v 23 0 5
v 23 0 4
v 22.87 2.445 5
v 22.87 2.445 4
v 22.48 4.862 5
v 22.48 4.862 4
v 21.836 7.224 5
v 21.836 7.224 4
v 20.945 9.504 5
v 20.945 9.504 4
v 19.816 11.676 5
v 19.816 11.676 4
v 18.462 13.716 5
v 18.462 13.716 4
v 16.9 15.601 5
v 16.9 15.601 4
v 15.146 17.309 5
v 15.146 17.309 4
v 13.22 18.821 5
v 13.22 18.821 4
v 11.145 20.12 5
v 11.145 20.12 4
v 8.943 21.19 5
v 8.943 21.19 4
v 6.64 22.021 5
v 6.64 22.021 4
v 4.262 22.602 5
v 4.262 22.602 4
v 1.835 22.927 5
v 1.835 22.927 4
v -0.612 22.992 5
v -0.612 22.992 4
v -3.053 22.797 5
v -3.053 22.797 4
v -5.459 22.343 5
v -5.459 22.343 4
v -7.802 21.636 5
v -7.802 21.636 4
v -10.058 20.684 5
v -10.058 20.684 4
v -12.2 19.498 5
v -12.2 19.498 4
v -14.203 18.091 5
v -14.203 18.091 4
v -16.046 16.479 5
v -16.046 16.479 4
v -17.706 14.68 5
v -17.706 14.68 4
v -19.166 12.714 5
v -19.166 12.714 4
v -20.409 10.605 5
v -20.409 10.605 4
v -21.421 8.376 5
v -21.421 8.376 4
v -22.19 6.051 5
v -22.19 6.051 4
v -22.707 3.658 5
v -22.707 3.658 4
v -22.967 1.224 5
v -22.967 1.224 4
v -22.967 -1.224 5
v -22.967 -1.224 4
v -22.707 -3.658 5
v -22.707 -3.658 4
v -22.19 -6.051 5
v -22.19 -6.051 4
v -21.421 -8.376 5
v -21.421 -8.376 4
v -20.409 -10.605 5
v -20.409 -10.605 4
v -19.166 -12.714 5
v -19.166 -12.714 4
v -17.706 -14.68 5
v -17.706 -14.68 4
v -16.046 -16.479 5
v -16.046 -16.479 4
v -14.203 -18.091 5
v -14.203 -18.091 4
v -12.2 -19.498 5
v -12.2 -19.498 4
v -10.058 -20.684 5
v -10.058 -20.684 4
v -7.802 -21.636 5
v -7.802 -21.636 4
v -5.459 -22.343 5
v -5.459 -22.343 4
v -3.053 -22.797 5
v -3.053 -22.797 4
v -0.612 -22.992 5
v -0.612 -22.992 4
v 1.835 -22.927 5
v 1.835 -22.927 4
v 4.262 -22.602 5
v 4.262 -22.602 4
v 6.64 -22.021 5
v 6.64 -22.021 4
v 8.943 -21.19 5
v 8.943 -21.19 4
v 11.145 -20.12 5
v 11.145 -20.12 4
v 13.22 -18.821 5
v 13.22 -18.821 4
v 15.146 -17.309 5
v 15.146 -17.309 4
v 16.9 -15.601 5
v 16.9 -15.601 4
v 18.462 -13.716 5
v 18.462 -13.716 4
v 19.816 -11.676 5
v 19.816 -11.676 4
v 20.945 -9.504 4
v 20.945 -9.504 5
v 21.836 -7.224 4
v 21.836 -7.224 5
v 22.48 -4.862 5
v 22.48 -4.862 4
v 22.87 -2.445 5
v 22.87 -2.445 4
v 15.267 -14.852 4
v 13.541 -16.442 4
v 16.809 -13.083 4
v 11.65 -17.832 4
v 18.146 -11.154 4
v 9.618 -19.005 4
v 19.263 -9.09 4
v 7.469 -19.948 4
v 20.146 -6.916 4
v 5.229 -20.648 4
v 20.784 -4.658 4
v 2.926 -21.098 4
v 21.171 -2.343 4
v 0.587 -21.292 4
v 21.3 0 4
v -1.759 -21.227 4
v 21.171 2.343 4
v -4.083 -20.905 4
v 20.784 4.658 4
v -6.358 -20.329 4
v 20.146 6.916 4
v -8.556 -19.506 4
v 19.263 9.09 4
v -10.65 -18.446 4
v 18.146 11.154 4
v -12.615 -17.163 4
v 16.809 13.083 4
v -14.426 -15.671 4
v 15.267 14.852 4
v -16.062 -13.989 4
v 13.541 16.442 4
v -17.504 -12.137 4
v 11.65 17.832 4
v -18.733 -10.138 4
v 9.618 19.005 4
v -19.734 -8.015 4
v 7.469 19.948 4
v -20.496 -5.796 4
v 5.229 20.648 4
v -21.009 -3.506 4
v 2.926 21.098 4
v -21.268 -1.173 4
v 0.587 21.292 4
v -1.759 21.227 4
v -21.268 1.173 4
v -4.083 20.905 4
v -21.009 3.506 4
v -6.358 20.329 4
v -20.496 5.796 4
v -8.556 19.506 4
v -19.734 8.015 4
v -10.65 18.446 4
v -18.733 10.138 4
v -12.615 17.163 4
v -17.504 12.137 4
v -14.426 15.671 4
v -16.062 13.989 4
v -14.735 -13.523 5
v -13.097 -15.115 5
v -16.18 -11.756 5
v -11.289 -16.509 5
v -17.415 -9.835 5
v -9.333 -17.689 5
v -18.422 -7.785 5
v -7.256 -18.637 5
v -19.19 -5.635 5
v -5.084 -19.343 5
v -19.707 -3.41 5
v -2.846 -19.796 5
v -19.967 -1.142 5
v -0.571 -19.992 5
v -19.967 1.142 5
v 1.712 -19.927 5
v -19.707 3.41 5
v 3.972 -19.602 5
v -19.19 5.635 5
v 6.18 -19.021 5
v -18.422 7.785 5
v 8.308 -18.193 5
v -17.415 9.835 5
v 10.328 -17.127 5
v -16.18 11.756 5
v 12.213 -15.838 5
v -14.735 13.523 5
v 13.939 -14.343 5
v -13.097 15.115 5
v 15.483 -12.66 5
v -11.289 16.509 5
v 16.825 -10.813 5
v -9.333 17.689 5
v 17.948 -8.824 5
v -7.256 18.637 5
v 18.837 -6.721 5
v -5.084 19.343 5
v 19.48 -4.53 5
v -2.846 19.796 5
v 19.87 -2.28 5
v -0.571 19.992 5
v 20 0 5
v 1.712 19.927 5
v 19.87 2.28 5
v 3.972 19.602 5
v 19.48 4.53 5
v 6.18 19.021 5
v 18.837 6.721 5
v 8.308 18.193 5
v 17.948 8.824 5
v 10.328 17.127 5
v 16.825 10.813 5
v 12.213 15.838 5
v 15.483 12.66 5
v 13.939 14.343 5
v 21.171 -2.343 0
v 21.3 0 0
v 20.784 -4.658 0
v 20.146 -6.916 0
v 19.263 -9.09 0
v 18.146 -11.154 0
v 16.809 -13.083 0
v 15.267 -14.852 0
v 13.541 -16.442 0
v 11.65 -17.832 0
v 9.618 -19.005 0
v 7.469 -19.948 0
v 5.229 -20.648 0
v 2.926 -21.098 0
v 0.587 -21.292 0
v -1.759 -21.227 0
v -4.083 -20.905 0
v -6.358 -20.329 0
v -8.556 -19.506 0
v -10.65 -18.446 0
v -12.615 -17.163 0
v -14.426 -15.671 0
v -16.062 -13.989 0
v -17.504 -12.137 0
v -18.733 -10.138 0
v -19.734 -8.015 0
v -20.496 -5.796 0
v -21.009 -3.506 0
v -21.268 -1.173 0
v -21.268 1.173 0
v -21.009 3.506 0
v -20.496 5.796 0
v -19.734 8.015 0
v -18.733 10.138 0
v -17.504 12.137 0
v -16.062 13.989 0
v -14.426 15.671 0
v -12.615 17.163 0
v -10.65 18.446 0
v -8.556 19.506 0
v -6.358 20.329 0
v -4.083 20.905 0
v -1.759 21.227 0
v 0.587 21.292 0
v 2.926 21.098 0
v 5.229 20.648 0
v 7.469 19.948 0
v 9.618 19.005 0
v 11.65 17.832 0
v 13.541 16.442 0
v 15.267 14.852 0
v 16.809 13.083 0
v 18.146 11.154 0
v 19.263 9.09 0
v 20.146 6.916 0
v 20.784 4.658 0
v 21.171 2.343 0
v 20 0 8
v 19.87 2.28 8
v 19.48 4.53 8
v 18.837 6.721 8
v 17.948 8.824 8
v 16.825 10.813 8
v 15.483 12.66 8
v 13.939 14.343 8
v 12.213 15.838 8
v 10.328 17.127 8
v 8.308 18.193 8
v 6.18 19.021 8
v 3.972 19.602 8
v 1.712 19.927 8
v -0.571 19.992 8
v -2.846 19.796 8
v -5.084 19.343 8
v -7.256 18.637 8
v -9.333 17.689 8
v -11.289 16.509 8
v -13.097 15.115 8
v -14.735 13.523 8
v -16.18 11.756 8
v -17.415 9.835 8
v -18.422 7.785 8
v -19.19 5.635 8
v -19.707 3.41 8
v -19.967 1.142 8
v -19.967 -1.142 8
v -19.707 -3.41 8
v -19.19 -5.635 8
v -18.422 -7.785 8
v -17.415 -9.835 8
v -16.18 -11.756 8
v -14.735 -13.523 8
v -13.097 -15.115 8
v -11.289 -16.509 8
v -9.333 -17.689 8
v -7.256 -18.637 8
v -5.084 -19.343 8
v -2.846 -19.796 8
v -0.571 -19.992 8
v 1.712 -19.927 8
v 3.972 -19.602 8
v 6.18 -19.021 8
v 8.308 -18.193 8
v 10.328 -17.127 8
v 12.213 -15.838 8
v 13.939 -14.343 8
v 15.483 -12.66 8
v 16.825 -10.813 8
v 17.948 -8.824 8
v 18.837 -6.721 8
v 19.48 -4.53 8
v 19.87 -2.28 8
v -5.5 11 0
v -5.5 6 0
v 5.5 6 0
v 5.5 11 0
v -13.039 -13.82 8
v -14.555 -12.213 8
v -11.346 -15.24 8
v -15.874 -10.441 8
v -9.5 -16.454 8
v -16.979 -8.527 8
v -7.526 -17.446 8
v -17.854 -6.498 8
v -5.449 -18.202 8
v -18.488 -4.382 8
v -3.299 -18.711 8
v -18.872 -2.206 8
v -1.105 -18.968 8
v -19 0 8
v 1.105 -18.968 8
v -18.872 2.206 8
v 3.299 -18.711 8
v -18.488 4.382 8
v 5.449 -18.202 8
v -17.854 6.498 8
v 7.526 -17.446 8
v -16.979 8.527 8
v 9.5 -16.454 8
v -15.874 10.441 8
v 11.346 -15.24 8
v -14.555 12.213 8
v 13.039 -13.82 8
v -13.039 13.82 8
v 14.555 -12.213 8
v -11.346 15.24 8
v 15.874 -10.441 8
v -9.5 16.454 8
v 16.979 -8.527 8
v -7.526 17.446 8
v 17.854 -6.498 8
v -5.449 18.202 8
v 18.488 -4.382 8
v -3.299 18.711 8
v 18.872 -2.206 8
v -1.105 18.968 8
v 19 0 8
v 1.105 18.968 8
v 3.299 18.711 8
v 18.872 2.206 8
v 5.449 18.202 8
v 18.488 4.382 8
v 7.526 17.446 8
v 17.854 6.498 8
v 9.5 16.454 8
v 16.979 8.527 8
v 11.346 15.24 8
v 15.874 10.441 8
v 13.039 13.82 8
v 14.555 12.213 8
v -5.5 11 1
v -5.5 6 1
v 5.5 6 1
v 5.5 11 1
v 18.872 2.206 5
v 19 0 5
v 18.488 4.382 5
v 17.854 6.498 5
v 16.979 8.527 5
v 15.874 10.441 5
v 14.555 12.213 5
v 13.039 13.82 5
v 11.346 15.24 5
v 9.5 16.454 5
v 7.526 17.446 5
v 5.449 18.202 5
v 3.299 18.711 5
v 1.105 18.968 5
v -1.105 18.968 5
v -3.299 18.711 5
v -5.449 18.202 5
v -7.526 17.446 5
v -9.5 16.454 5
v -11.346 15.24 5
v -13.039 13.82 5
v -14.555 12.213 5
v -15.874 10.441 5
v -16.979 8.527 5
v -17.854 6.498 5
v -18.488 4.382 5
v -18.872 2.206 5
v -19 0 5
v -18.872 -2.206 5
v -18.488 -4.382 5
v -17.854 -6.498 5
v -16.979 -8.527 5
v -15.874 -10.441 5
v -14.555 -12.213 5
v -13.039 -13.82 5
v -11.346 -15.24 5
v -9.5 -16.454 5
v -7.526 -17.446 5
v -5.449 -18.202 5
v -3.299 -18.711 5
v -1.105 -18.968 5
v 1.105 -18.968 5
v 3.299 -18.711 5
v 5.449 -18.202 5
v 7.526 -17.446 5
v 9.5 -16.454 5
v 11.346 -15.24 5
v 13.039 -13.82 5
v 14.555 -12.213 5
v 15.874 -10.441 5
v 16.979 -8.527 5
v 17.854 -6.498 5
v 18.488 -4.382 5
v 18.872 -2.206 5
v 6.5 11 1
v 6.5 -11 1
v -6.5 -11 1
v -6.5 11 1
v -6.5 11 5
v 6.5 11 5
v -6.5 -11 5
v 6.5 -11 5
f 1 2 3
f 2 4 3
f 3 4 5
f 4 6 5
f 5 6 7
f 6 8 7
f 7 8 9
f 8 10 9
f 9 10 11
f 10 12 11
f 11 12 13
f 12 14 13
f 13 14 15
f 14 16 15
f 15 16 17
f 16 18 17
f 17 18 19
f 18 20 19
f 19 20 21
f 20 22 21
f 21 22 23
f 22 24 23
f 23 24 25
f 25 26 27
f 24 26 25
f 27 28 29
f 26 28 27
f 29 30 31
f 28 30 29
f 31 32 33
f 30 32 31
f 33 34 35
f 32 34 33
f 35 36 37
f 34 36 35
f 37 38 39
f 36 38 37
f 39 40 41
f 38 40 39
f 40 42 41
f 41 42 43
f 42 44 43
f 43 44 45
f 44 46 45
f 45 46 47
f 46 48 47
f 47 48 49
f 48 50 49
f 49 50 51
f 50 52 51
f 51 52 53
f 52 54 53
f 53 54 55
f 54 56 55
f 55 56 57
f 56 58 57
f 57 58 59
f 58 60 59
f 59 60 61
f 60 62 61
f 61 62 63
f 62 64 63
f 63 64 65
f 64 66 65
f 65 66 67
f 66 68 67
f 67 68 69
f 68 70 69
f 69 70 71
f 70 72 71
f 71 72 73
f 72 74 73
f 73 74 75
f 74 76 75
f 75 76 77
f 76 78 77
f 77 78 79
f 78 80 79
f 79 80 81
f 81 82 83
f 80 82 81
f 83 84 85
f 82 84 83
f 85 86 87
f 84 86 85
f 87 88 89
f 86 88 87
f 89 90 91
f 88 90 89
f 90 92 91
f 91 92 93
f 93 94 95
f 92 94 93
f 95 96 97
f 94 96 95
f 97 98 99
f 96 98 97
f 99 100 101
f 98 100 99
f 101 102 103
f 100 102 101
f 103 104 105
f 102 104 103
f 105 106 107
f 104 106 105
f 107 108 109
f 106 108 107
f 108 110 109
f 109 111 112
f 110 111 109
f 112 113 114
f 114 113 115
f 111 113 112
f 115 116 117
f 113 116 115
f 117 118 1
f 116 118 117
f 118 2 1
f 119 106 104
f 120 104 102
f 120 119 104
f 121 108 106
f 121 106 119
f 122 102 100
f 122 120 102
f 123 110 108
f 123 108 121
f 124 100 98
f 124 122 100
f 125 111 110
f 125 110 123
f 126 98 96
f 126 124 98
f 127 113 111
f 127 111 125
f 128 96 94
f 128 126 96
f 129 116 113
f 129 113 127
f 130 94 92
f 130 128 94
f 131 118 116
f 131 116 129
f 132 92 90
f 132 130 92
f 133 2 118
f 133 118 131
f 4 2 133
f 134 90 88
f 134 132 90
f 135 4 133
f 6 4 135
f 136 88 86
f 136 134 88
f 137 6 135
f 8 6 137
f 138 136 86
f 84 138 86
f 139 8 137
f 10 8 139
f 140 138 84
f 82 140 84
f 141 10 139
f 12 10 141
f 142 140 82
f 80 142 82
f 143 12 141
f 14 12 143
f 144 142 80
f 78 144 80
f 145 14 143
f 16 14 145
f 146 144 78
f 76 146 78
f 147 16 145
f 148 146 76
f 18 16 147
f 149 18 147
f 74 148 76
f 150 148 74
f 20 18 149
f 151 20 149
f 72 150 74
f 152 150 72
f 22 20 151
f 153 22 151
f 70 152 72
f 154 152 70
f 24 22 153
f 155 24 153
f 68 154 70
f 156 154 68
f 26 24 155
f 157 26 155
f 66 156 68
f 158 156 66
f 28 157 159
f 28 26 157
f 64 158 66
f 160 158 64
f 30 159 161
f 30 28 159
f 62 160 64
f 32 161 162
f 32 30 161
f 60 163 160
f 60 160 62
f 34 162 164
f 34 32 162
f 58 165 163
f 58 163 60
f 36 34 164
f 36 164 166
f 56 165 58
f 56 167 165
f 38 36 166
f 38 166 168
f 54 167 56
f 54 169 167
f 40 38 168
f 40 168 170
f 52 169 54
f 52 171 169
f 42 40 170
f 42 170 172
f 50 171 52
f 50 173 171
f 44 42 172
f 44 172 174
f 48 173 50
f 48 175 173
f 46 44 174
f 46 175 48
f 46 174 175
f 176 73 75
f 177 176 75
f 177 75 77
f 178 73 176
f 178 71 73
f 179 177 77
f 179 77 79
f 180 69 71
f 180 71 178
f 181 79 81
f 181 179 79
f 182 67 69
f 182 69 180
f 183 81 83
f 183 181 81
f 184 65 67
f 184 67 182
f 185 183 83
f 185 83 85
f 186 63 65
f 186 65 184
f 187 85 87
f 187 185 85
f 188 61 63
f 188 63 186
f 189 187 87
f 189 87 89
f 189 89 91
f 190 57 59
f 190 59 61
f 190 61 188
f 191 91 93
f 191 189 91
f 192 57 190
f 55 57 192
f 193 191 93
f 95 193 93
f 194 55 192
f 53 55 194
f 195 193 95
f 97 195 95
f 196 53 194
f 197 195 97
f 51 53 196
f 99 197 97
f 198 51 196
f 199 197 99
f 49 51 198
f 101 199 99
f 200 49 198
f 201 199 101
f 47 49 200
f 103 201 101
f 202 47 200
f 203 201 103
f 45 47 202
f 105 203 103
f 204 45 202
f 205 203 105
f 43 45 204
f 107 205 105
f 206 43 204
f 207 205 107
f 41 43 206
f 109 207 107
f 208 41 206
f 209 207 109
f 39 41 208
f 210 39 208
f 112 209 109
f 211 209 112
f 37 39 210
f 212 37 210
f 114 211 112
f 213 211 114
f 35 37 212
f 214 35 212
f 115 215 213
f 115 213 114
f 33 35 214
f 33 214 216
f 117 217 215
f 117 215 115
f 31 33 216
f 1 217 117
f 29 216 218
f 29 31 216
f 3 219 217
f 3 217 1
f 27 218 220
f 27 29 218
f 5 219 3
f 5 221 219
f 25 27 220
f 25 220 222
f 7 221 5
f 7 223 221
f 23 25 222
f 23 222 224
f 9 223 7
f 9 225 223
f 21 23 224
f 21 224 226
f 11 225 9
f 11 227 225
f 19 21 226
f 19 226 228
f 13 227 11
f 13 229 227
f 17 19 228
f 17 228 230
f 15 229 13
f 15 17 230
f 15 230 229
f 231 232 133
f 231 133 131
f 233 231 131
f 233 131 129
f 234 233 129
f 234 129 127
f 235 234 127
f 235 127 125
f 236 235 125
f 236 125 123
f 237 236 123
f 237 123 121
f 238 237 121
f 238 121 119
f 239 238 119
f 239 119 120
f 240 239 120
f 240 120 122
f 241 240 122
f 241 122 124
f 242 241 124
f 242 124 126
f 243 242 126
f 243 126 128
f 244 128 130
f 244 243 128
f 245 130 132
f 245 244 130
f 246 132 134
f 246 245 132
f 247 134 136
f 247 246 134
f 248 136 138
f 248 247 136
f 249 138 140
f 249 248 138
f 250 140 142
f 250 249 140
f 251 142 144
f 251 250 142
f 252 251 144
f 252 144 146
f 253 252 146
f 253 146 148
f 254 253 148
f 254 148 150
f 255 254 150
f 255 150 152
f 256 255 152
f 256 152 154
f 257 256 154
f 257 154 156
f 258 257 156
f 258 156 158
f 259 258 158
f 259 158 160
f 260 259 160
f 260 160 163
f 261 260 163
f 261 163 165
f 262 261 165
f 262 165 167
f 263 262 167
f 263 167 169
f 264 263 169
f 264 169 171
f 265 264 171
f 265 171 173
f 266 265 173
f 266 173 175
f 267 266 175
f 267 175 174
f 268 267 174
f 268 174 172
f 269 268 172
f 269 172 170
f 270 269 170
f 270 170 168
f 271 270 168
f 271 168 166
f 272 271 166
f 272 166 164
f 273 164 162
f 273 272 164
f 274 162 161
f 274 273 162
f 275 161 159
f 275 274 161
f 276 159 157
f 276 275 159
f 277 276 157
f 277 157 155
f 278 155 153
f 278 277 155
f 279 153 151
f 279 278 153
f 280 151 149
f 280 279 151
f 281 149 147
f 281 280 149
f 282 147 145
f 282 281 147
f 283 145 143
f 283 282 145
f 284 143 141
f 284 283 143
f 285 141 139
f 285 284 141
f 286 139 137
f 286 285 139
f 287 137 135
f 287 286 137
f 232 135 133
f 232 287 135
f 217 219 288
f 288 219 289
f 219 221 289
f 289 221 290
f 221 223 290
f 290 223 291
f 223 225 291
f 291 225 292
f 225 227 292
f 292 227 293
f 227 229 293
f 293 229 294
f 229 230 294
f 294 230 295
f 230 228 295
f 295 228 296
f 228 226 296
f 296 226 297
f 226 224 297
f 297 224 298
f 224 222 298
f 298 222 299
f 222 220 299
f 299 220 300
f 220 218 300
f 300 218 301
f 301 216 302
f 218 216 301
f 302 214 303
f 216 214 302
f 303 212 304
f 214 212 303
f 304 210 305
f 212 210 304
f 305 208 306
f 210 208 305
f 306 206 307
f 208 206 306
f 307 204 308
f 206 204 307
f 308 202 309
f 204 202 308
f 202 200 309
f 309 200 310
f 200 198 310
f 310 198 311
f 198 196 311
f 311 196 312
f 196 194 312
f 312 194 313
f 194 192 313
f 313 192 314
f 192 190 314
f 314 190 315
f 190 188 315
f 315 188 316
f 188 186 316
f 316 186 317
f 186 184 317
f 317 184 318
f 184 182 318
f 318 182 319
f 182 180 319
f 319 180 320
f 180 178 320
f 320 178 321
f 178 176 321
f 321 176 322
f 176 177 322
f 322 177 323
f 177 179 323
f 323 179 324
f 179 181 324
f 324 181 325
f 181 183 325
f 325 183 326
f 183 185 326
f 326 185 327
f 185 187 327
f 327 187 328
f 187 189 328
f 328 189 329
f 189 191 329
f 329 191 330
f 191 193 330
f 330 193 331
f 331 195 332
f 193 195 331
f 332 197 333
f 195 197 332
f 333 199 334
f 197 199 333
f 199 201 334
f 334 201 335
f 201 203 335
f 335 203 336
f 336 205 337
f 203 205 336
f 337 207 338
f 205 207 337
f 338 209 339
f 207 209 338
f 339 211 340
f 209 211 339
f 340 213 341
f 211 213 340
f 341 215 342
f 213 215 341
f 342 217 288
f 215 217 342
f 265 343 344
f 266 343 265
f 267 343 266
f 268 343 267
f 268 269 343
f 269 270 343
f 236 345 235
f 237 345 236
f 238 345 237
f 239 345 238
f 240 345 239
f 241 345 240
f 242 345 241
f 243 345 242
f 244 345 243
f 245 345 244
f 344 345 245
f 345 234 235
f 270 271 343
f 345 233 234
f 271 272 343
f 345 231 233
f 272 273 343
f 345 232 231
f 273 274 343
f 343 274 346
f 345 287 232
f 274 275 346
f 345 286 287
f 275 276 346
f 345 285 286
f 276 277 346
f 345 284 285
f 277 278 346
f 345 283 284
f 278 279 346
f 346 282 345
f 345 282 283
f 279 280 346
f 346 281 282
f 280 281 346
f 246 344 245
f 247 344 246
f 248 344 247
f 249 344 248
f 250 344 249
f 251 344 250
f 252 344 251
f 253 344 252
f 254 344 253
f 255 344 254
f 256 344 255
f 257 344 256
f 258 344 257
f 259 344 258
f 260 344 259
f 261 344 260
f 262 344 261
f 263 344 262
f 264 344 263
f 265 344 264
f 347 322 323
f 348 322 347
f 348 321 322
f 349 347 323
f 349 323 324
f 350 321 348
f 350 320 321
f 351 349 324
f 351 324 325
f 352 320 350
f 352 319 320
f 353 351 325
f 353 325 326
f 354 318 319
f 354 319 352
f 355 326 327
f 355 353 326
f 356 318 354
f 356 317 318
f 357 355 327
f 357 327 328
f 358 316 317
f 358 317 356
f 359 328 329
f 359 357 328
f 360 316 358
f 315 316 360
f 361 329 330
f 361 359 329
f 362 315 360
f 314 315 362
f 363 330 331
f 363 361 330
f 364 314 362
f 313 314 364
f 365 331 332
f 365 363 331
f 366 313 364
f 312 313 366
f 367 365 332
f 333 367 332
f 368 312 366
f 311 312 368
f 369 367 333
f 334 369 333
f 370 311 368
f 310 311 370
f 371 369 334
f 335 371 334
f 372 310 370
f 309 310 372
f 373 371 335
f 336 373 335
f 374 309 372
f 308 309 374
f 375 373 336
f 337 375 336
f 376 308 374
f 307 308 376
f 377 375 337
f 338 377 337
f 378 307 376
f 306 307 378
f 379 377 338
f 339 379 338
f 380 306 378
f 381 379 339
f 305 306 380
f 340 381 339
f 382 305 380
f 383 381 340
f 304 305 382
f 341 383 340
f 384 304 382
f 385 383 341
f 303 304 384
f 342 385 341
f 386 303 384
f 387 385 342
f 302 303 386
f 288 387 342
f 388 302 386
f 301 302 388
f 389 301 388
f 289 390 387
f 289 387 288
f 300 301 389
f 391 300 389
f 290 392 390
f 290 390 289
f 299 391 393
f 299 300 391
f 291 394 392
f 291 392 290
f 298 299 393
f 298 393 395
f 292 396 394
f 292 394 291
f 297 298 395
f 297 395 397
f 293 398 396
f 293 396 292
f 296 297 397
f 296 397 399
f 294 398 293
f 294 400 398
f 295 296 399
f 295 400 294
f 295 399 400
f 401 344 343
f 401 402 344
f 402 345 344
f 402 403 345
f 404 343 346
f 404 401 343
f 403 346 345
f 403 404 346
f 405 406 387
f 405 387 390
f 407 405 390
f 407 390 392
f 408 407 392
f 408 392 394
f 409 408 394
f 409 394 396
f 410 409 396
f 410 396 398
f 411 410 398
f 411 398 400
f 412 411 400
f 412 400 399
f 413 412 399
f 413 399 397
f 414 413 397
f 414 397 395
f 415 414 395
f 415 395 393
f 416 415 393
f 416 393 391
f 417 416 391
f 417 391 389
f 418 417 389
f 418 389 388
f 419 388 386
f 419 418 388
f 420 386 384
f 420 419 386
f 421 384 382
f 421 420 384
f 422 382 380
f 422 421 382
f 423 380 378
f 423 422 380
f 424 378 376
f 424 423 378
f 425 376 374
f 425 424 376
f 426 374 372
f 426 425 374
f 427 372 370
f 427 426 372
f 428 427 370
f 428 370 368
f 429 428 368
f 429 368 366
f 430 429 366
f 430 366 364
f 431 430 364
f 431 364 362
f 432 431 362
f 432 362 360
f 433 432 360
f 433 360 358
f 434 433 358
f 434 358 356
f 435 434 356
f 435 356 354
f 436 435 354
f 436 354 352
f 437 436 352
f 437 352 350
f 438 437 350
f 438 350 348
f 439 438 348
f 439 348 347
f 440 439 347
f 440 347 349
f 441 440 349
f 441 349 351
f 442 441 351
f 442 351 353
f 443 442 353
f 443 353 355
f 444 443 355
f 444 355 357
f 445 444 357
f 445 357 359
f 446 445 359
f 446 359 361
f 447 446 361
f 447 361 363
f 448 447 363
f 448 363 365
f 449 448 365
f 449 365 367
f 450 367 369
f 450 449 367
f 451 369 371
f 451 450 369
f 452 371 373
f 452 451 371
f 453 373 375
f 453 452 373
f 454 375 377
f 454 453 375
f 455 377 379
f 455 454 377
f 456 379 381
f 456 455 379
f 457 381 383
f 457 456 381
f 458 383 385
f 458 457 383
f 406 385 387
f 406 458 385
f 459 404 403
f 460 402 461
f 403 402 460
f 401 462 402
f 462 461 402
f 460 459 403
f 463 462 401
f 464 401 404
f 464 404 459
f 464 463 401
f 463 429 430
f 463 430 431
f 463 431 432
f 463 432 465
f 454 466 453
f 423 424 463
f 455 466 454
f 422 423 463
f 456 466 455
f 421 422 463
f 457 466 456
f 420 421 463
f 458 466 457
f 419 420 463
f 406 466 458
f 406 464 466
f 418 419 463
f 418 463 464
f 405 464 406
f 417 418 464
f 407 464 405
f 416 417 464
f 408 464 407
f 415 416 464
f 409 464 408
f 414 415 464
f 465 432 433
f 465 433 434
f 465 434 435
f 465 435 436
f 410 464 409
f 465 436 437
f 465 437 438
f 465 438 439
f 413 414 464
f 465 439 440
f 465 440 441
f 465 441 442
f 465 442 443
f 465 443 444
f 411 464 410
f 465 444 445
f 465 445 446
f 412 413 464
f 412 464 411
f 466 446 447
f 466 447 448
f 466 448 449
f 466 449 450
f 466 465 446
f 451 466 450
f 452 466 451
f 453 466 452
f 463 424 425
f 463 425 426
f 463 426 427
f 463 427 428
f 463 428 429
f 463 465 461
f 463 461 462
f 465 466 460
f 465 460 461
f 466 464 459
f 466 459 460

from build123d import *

# Parameters (mm, degrees)
SKETCH_R        = 23
PAD_DEPTH       = 5
SKETCH001_W     = 13
SKETCH001_H     = 22
POCKET_DEPTH    = 4
SKETCH002_W     = 11
SKETCH002_H     = 5
POCKET001_DEPTH = 1.001
SKETCH008_R     = 20
SKETCH008_R_2   = 19
PAD005_DEPTH    = 3
SKETCH011_R     = 23
SKETCH011_R_2   = 21.3
POCKET002_DEPTH = 4


with BuildPart() as part:
    # Sketch → Pad (new body)
    with BuildSketch(Plane.XY):
        Circle(SKETCH_R)
    extrude(amount=PAD_DEPTH)

    # Sketch001 (on Face3 of Pad) → Pocket (cut)
    with BuildSketch(Plane.XY.offset(5)):
        Rectangle(SKETCH001_W, SKETCH001_H)
    extrude(amount=-POCKET_DEPTH, mode=Mode.SUBTRACT)

    # Sketch002 (on Face8 of Pocket) → Pocket001 (cut, through all)
    with BuildSketch(Plane.XY.offset(1)):
        with Locations((0, 8.5)):
            Rectangle(SKETCH002_W, SKETCH002_H)
    extrude(amount=-POCKET001_DEPTH, mode=Mode.SUBTRACT)

    # Sketch008 → Pad005 (join)
    with BuildSketch(Plane.XY.offset(5)):
        Circle(SKETCH008_R)
        Circle(SKETCH008_R_2, mode=Mode.SUBTRACT)
    extrude(amount=PAD005_DEPTH)

    # Sketch011 (on Face2 of Pad005) → Pocket002 (cut)
    with BuildSketch(Plane(origin=(0, 0, 0), x_dir=(1, 0, 0), z_dir=(0, 0, -1))):
        Circle(SKETCH011_R)
        Circle(SKETCH011_R_2, mode=Mode.SUBTRACT)
    extrude(amount=-POCKET002_DEPTH, mode=Mode.SUBTRACT)


solid = part.part
